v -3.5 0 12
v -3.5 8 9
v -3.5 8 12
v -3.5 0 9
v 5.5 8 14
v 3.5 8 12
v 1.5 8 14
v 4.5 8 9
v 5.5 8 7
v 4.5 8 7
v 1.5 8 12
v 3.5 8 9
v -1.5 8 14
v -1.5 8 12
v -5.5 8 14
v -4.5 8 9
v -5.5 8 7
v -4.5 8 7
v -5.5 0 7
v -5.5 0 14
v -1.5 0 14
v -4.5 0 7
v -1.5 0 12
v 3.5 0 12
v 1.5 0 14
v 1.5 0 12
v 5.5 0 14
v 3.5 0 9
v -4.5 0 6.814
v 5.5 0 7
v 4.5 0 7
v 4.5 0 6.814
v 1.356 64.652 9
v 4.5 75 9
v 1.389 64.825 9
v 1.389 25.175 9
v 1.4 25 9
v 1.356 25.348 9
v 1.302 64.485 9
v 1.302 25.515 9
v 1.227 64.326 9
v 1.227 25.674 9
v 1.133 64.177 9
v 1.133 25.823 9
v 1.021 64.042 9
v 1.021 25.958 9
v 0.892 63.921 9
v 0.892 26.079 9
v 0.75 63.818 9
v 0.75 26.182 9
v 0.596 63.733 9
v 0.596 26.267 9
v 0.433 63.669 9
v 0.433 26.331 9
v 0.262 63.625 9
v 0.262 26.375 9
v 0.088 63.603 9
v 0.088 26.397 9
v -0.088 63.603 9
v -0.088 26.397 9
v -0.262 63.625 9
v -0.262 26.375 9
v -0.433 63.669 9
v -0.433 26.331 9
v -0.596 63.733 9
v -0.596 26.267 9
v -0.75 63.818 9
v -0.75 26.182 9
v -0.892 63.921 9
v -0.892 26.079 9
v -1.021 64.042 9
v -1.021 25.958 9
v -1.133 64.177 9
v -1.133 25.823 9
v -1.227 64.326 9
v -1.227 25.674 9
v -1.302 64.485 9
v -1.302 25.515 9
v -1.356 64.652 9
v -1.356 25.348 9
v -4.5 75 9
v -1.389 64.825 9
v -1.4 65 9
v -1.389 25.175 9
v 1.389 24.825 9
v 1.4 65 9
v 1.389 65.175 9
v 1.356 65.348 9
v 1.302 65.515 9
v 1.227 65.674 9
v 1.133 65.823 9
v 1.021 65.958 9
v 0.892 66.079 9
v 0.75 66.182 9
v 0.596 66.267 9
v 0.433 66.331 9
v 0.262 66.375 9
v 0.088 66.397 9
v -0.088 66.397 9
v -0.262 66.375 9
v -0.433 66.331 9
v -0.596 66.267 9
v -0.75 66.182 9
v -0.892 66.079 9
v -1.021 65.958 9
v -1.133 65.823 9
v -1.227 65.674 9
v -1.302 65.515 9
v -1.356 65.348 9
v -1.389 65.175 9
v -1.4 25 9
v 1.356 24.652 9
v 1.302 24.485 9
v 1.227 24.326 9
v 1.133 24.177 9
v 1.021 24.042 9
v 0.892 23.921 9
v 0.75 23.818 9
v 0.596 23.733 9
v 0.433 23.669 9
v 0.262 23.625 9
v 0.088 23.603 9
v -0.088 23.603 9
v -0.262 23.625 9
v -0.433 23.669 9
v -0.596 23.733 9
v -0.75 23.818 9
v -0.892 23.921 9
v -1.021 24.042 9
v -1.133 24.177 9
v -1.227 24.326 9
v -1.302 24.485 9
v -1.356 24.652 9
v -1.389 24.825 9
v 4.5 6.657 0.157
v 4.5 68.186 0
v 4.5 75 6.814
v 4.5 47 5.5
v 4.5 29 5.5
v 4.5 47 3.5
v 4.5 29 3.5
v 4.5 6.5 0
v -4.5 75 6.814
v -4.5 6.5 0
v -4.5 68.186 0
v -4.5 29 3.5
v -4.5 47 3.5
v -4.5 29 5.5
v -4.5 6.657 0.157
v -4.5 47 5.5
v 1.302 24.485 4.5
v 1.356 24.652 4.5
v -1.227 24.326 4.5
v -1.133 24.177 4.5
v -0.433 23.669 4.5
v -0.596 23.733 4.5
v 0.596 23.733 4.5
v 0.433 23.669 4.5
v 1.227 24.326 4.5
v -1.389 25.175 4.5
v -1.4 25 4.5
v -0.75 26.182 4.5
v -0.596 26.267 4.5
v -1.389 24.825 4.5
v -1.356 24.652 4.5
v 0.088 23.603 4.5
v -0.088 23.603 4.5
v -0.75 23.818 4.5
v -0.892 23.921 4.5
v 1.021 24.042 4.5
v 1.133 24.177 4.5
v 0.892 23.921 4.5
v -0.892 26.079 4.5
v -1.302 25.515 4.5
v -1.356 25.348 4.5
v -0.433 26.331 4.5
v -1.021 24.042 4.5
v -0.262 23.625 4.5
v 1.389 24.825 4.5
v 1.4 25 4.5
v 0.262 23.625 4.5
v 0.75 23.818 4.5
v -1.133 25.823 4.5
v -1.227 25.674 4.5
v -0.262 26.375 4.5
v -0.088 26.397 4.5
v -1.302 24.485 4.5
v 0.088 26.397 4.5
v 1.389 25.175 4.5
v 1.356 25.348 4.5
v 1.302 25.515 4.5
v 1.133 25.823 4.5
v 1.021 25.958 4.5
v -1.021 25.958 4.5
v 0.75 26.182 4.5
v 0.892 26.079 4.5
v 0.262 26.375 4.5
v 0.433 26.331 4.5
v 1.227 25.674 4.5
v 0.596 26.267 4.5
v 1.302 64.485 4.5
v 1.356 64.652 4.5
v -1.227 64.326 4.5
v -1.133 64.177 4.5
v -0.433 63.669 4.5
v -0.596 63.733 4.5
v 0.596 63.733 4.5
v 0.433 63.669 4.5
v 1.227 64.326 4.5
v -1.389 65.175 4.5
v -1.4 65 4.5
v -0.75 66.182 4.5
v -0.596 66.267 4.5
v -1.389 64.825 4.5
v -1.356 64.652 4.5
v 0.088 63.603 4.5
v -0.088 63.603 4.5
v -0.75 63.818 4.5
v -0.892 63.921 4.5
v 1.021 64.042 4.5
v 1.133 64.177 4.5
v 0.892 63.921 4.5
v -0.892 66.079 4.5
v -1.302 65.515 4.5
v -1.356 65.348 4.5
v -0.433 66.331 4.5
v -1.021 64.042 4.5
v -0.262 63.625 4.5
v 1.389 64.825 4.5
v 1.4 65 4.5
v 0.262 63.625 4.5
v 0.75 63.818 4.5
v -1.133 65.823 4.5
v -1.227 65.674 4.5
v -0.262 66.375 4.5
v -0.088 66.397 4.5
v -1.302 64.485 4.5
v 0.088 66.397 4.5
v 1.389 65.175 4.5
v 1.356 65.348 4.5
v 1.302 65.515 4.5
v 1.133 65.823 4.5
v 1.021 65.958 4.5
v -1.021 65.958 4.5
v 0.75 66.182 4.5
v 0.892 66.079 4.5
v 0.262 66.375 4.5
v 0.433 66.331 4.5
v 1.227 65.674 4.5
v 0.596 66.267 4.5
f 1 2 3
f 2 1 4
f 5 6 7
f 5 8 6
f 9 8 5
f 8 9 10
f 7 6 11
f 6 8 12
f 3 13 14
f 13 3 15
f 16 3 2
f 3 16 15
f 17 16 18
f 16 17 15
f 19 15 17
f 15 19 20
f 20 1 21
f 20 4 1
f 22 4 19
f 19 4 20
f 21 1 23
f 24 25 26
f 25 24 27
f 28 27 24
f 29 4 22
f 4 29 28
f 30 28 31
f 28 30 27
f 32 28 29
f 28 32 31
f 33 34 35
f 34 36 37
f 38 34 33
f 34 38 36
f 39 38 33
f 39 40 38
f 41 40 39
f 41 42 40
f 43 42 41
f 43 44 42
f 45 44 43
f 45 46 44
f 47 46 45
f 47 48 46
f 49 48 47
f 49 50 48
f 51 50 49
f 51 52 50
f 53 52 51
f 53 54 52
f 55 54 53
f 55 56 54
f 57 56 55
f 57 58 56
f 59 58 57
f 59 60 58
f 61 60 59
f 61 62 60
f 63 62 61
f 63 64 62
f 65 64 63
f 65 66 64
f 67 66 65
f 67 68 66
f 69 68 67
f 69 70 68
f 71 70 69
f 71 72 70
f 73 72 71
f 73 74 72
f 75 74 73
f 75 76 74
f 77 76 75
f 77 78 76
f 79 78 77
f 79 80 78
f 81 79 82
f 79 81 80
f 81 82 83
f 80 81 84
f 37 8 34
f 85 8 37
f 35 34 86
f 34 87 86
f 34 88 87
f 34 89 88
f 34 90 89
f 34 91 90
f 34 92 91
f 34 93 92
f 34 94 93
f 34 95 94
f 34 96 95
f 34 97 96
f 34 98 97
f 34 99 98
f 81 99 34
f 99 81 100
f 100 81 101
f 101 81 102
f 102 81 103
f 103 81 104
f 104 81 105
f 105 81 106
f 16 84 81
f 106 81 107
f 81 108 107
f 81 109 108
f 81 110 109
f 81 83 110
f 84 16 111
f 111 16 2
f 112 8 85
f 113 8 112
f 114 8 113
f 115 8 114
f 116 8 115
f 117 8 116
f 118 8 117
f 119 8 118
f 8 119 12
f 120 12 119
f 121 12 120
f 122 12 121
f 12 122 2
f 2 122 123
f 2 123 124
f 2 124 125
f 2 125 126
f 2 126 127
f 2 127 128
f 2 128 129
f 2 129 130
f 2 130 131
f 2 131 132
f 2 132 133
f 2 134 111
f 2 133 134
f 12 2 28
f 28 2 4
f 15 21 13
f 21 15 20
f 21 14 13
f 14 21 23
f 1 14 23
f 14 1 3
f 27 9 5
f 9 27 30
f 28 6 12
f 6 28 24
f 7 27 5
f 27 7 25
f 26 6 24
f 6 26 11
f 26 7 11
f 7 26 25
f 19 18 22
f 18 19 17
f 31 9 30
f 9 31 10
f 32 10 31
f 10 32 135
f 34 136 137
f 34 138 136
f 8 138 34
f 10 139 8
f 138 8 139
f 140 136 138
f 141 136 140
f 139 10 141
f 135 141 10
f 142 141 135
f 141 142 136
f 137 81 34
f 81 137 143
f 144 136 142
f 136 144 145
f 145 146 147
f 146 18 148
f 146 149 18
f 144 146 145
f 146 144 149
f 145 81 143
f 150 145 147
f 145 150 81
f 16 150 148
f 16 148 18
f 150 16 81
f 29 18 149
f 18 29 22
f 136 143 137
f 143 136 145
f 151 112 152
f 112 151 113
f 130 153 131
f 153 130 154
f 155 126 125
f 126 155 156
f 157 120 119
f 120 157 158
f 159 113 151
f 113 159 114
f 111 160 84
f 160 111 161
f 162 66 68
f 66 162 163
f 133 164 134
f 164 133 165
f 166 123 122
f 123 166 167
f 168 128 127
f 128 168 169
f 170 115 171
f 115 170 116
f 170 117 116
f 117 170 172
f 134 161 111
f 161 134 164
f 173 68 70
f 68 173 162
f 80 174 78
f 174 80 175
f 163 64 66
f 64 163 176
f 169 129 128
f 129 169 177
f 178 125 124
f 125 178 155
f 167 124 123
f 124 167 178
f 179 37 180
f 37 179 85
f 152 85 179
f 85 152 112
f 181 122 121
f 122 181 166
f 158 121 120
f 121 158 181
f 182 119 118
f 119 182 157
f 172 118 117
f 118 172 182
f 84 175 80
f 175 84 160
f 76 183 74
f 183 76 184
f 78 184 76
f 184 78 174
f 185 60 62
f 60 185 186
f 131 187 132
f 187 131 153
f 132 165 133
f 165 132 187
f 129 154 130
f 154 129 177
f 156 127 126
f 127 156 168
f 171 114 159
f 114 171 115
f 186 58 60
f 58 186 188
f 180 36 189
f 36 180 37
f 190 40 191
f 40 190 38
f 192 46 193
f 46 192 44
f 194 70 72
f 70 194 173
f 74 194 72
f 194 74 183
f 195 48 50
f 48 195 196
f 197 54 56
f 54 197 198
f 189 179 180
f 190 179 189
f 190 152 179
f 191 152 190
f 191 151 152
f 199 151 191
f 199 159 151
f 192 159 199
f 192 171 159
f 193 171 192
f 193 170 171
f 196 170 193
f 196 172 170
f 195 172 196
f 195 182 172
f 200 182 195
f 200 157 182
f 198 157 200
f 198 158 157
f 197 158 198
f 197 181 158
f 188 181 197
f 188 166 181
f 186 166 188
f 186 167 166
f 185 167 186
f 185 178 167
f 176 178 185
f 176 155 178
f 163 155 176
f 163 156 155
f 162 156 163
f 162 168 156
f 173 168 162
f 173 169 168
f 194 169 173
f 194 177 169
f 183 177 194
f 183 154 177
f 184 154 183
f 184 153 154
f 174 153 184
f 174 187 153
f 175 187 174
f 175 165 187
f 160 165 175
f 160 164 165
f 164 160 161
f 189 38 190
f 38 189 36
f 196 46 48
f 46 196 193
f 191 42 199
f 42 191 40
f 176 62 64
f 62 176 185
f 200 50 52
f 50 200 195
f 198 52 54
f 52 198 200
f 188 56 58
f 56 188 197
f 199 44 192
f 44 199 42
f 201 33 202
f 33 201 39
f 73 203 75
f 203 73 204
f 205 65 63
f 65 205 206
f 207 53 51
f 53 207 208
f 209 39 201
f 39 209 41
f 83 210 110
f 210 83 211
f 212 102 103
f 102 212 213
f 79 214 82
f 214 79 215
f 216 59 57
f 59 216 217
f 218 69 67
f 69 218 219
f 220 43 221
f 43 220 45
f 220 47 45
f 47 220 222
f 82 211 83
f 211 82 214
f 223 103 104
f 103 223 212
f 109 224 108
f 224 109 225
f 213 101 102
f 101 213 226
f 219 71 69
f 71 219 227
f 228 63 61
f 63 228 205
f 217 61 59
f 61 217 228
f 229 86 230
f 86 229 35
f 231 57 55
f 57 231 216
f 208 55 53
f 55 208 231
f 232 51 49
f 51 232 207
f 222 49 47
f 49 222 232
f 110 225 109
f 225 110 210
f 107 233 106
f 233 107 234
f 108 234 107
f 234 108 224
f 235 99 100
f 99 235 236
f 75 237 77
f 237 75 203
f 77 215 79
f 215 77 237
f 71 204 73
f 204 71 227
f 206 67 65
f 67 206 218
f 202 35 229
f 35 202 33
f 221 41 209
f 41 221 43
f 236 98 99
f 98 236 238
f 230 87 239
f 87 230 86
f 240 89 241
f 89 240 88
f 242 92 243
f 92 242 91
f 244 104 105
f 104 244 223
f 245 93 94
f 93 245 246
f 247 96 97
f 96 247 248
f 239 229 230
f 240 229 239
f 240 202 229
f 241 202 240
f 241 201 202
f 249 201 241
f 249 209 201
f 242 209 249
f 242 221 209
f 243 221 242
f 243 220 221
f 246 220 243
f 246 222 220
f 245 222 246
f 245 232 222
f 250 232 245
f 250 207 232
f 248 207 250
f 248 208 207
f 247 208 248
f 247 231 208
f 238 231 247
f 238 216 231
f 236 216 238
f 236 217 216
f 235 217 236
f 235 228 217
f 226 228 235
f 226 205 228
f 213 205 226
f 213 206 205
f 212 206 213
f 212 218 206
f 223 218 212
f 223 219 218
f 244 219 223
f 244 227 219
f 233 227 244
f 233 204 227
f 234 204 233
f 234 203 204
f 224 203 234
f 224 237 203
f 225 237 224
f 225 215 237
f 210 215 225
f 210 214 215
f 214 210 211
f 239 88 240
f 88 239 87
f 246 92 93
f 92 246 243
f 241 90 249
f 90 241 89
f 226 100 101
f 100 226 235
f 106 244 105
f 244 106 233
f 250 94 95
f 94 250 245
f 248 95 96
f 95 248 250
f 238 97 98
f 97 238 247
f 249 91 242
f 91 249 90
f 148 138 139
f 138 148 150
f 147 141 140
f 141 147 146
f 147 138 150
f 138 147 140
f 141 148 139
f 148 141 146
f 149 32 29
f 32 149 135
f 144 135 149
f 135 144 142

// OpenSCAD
$fn=50;

KEEL_W=9.0;
KEEL_H=9.0;
KEEL_L=75;

module cable_clamp(y_position) {
    translate([1.5, y_position, 4.5]) {
        rotate([90, 0, 0]) {
            union() {
                // Vertical arm of the C-clamp 2
                translate([2.0, 0, 0]) cube([2, 5, 8]);
                // Horizontal arm of the C-clamp
                rotate([90, 0, 0])
                translate([0, 0, -5]) cube([2, 8, 2]);
                // Vertical arm of the C-clamp 1
                translate([-7, 0, 0]) cube([2, 5, 8]);
                // Horizontal arm of the C-clamp
                rotate([90, 0, 0])
                translate([-5.0, 0,-5]) cube([2, 8, 2]);
                // clamp bed
                rotate([90, 0, 0])
                translate([-7.0, 0,-0]) cube([11, 8, 2]);
            }
        }
    }
}

module cutout_group(y_position) {
    translate([0, y_position, 0]) {
        
        // front of keel slope
        translate([-5, -KEEL_L-1, -3])
        rotate([-45, 0, 0])
        //(x, z, y)
        cube([10, 11, 8]); 

        // screw holes
        translate([0, -20, 0]) cylinder(h=5, d=2.8); 
        translate([0.0, -60, 0]) cylinder(h=5, d=2.8);   

        // thru slots for straps
        translate([-7.0, -42,-1]) cube([14, 18, 2]);       
        //translate([-7.0, -92,-1]) cube([14, 18, 2]);
        
    }
}

// translate and rotate so model starts at 0, 0, 0
// someone tell me why this has to be done by hand?
translate([0, 0, KEEL_H/2]) {
    rotate([180, 180, 0]) { // Flipping the entire object along the Y axis
        difference() {
            union() {           
                // keel
                rotate([90,0,0])
                linear_extrude(KEEL_L) square([KEEL_W, KEEL_H], center=true); 
                // cable clamp
                cable_clamp(0);
                // measuring posts
                //translate([0,  MOUNT_HOLE_OFFSET+15, 0]) cylinder(h=7, d=1.0);            
                //translate([0, MOUNT_HOLE_OFFSET+30, 0]) cylinder(h=7, d=1.0);
            }
            
            cutout_group(-5);
            
            // rear of keel slope
            translate([-5, -1, -10])
            rotate([45, 0, 0])
            //(x, z, y)
            cube([10, 11, 8]);  
        }
    }
}
